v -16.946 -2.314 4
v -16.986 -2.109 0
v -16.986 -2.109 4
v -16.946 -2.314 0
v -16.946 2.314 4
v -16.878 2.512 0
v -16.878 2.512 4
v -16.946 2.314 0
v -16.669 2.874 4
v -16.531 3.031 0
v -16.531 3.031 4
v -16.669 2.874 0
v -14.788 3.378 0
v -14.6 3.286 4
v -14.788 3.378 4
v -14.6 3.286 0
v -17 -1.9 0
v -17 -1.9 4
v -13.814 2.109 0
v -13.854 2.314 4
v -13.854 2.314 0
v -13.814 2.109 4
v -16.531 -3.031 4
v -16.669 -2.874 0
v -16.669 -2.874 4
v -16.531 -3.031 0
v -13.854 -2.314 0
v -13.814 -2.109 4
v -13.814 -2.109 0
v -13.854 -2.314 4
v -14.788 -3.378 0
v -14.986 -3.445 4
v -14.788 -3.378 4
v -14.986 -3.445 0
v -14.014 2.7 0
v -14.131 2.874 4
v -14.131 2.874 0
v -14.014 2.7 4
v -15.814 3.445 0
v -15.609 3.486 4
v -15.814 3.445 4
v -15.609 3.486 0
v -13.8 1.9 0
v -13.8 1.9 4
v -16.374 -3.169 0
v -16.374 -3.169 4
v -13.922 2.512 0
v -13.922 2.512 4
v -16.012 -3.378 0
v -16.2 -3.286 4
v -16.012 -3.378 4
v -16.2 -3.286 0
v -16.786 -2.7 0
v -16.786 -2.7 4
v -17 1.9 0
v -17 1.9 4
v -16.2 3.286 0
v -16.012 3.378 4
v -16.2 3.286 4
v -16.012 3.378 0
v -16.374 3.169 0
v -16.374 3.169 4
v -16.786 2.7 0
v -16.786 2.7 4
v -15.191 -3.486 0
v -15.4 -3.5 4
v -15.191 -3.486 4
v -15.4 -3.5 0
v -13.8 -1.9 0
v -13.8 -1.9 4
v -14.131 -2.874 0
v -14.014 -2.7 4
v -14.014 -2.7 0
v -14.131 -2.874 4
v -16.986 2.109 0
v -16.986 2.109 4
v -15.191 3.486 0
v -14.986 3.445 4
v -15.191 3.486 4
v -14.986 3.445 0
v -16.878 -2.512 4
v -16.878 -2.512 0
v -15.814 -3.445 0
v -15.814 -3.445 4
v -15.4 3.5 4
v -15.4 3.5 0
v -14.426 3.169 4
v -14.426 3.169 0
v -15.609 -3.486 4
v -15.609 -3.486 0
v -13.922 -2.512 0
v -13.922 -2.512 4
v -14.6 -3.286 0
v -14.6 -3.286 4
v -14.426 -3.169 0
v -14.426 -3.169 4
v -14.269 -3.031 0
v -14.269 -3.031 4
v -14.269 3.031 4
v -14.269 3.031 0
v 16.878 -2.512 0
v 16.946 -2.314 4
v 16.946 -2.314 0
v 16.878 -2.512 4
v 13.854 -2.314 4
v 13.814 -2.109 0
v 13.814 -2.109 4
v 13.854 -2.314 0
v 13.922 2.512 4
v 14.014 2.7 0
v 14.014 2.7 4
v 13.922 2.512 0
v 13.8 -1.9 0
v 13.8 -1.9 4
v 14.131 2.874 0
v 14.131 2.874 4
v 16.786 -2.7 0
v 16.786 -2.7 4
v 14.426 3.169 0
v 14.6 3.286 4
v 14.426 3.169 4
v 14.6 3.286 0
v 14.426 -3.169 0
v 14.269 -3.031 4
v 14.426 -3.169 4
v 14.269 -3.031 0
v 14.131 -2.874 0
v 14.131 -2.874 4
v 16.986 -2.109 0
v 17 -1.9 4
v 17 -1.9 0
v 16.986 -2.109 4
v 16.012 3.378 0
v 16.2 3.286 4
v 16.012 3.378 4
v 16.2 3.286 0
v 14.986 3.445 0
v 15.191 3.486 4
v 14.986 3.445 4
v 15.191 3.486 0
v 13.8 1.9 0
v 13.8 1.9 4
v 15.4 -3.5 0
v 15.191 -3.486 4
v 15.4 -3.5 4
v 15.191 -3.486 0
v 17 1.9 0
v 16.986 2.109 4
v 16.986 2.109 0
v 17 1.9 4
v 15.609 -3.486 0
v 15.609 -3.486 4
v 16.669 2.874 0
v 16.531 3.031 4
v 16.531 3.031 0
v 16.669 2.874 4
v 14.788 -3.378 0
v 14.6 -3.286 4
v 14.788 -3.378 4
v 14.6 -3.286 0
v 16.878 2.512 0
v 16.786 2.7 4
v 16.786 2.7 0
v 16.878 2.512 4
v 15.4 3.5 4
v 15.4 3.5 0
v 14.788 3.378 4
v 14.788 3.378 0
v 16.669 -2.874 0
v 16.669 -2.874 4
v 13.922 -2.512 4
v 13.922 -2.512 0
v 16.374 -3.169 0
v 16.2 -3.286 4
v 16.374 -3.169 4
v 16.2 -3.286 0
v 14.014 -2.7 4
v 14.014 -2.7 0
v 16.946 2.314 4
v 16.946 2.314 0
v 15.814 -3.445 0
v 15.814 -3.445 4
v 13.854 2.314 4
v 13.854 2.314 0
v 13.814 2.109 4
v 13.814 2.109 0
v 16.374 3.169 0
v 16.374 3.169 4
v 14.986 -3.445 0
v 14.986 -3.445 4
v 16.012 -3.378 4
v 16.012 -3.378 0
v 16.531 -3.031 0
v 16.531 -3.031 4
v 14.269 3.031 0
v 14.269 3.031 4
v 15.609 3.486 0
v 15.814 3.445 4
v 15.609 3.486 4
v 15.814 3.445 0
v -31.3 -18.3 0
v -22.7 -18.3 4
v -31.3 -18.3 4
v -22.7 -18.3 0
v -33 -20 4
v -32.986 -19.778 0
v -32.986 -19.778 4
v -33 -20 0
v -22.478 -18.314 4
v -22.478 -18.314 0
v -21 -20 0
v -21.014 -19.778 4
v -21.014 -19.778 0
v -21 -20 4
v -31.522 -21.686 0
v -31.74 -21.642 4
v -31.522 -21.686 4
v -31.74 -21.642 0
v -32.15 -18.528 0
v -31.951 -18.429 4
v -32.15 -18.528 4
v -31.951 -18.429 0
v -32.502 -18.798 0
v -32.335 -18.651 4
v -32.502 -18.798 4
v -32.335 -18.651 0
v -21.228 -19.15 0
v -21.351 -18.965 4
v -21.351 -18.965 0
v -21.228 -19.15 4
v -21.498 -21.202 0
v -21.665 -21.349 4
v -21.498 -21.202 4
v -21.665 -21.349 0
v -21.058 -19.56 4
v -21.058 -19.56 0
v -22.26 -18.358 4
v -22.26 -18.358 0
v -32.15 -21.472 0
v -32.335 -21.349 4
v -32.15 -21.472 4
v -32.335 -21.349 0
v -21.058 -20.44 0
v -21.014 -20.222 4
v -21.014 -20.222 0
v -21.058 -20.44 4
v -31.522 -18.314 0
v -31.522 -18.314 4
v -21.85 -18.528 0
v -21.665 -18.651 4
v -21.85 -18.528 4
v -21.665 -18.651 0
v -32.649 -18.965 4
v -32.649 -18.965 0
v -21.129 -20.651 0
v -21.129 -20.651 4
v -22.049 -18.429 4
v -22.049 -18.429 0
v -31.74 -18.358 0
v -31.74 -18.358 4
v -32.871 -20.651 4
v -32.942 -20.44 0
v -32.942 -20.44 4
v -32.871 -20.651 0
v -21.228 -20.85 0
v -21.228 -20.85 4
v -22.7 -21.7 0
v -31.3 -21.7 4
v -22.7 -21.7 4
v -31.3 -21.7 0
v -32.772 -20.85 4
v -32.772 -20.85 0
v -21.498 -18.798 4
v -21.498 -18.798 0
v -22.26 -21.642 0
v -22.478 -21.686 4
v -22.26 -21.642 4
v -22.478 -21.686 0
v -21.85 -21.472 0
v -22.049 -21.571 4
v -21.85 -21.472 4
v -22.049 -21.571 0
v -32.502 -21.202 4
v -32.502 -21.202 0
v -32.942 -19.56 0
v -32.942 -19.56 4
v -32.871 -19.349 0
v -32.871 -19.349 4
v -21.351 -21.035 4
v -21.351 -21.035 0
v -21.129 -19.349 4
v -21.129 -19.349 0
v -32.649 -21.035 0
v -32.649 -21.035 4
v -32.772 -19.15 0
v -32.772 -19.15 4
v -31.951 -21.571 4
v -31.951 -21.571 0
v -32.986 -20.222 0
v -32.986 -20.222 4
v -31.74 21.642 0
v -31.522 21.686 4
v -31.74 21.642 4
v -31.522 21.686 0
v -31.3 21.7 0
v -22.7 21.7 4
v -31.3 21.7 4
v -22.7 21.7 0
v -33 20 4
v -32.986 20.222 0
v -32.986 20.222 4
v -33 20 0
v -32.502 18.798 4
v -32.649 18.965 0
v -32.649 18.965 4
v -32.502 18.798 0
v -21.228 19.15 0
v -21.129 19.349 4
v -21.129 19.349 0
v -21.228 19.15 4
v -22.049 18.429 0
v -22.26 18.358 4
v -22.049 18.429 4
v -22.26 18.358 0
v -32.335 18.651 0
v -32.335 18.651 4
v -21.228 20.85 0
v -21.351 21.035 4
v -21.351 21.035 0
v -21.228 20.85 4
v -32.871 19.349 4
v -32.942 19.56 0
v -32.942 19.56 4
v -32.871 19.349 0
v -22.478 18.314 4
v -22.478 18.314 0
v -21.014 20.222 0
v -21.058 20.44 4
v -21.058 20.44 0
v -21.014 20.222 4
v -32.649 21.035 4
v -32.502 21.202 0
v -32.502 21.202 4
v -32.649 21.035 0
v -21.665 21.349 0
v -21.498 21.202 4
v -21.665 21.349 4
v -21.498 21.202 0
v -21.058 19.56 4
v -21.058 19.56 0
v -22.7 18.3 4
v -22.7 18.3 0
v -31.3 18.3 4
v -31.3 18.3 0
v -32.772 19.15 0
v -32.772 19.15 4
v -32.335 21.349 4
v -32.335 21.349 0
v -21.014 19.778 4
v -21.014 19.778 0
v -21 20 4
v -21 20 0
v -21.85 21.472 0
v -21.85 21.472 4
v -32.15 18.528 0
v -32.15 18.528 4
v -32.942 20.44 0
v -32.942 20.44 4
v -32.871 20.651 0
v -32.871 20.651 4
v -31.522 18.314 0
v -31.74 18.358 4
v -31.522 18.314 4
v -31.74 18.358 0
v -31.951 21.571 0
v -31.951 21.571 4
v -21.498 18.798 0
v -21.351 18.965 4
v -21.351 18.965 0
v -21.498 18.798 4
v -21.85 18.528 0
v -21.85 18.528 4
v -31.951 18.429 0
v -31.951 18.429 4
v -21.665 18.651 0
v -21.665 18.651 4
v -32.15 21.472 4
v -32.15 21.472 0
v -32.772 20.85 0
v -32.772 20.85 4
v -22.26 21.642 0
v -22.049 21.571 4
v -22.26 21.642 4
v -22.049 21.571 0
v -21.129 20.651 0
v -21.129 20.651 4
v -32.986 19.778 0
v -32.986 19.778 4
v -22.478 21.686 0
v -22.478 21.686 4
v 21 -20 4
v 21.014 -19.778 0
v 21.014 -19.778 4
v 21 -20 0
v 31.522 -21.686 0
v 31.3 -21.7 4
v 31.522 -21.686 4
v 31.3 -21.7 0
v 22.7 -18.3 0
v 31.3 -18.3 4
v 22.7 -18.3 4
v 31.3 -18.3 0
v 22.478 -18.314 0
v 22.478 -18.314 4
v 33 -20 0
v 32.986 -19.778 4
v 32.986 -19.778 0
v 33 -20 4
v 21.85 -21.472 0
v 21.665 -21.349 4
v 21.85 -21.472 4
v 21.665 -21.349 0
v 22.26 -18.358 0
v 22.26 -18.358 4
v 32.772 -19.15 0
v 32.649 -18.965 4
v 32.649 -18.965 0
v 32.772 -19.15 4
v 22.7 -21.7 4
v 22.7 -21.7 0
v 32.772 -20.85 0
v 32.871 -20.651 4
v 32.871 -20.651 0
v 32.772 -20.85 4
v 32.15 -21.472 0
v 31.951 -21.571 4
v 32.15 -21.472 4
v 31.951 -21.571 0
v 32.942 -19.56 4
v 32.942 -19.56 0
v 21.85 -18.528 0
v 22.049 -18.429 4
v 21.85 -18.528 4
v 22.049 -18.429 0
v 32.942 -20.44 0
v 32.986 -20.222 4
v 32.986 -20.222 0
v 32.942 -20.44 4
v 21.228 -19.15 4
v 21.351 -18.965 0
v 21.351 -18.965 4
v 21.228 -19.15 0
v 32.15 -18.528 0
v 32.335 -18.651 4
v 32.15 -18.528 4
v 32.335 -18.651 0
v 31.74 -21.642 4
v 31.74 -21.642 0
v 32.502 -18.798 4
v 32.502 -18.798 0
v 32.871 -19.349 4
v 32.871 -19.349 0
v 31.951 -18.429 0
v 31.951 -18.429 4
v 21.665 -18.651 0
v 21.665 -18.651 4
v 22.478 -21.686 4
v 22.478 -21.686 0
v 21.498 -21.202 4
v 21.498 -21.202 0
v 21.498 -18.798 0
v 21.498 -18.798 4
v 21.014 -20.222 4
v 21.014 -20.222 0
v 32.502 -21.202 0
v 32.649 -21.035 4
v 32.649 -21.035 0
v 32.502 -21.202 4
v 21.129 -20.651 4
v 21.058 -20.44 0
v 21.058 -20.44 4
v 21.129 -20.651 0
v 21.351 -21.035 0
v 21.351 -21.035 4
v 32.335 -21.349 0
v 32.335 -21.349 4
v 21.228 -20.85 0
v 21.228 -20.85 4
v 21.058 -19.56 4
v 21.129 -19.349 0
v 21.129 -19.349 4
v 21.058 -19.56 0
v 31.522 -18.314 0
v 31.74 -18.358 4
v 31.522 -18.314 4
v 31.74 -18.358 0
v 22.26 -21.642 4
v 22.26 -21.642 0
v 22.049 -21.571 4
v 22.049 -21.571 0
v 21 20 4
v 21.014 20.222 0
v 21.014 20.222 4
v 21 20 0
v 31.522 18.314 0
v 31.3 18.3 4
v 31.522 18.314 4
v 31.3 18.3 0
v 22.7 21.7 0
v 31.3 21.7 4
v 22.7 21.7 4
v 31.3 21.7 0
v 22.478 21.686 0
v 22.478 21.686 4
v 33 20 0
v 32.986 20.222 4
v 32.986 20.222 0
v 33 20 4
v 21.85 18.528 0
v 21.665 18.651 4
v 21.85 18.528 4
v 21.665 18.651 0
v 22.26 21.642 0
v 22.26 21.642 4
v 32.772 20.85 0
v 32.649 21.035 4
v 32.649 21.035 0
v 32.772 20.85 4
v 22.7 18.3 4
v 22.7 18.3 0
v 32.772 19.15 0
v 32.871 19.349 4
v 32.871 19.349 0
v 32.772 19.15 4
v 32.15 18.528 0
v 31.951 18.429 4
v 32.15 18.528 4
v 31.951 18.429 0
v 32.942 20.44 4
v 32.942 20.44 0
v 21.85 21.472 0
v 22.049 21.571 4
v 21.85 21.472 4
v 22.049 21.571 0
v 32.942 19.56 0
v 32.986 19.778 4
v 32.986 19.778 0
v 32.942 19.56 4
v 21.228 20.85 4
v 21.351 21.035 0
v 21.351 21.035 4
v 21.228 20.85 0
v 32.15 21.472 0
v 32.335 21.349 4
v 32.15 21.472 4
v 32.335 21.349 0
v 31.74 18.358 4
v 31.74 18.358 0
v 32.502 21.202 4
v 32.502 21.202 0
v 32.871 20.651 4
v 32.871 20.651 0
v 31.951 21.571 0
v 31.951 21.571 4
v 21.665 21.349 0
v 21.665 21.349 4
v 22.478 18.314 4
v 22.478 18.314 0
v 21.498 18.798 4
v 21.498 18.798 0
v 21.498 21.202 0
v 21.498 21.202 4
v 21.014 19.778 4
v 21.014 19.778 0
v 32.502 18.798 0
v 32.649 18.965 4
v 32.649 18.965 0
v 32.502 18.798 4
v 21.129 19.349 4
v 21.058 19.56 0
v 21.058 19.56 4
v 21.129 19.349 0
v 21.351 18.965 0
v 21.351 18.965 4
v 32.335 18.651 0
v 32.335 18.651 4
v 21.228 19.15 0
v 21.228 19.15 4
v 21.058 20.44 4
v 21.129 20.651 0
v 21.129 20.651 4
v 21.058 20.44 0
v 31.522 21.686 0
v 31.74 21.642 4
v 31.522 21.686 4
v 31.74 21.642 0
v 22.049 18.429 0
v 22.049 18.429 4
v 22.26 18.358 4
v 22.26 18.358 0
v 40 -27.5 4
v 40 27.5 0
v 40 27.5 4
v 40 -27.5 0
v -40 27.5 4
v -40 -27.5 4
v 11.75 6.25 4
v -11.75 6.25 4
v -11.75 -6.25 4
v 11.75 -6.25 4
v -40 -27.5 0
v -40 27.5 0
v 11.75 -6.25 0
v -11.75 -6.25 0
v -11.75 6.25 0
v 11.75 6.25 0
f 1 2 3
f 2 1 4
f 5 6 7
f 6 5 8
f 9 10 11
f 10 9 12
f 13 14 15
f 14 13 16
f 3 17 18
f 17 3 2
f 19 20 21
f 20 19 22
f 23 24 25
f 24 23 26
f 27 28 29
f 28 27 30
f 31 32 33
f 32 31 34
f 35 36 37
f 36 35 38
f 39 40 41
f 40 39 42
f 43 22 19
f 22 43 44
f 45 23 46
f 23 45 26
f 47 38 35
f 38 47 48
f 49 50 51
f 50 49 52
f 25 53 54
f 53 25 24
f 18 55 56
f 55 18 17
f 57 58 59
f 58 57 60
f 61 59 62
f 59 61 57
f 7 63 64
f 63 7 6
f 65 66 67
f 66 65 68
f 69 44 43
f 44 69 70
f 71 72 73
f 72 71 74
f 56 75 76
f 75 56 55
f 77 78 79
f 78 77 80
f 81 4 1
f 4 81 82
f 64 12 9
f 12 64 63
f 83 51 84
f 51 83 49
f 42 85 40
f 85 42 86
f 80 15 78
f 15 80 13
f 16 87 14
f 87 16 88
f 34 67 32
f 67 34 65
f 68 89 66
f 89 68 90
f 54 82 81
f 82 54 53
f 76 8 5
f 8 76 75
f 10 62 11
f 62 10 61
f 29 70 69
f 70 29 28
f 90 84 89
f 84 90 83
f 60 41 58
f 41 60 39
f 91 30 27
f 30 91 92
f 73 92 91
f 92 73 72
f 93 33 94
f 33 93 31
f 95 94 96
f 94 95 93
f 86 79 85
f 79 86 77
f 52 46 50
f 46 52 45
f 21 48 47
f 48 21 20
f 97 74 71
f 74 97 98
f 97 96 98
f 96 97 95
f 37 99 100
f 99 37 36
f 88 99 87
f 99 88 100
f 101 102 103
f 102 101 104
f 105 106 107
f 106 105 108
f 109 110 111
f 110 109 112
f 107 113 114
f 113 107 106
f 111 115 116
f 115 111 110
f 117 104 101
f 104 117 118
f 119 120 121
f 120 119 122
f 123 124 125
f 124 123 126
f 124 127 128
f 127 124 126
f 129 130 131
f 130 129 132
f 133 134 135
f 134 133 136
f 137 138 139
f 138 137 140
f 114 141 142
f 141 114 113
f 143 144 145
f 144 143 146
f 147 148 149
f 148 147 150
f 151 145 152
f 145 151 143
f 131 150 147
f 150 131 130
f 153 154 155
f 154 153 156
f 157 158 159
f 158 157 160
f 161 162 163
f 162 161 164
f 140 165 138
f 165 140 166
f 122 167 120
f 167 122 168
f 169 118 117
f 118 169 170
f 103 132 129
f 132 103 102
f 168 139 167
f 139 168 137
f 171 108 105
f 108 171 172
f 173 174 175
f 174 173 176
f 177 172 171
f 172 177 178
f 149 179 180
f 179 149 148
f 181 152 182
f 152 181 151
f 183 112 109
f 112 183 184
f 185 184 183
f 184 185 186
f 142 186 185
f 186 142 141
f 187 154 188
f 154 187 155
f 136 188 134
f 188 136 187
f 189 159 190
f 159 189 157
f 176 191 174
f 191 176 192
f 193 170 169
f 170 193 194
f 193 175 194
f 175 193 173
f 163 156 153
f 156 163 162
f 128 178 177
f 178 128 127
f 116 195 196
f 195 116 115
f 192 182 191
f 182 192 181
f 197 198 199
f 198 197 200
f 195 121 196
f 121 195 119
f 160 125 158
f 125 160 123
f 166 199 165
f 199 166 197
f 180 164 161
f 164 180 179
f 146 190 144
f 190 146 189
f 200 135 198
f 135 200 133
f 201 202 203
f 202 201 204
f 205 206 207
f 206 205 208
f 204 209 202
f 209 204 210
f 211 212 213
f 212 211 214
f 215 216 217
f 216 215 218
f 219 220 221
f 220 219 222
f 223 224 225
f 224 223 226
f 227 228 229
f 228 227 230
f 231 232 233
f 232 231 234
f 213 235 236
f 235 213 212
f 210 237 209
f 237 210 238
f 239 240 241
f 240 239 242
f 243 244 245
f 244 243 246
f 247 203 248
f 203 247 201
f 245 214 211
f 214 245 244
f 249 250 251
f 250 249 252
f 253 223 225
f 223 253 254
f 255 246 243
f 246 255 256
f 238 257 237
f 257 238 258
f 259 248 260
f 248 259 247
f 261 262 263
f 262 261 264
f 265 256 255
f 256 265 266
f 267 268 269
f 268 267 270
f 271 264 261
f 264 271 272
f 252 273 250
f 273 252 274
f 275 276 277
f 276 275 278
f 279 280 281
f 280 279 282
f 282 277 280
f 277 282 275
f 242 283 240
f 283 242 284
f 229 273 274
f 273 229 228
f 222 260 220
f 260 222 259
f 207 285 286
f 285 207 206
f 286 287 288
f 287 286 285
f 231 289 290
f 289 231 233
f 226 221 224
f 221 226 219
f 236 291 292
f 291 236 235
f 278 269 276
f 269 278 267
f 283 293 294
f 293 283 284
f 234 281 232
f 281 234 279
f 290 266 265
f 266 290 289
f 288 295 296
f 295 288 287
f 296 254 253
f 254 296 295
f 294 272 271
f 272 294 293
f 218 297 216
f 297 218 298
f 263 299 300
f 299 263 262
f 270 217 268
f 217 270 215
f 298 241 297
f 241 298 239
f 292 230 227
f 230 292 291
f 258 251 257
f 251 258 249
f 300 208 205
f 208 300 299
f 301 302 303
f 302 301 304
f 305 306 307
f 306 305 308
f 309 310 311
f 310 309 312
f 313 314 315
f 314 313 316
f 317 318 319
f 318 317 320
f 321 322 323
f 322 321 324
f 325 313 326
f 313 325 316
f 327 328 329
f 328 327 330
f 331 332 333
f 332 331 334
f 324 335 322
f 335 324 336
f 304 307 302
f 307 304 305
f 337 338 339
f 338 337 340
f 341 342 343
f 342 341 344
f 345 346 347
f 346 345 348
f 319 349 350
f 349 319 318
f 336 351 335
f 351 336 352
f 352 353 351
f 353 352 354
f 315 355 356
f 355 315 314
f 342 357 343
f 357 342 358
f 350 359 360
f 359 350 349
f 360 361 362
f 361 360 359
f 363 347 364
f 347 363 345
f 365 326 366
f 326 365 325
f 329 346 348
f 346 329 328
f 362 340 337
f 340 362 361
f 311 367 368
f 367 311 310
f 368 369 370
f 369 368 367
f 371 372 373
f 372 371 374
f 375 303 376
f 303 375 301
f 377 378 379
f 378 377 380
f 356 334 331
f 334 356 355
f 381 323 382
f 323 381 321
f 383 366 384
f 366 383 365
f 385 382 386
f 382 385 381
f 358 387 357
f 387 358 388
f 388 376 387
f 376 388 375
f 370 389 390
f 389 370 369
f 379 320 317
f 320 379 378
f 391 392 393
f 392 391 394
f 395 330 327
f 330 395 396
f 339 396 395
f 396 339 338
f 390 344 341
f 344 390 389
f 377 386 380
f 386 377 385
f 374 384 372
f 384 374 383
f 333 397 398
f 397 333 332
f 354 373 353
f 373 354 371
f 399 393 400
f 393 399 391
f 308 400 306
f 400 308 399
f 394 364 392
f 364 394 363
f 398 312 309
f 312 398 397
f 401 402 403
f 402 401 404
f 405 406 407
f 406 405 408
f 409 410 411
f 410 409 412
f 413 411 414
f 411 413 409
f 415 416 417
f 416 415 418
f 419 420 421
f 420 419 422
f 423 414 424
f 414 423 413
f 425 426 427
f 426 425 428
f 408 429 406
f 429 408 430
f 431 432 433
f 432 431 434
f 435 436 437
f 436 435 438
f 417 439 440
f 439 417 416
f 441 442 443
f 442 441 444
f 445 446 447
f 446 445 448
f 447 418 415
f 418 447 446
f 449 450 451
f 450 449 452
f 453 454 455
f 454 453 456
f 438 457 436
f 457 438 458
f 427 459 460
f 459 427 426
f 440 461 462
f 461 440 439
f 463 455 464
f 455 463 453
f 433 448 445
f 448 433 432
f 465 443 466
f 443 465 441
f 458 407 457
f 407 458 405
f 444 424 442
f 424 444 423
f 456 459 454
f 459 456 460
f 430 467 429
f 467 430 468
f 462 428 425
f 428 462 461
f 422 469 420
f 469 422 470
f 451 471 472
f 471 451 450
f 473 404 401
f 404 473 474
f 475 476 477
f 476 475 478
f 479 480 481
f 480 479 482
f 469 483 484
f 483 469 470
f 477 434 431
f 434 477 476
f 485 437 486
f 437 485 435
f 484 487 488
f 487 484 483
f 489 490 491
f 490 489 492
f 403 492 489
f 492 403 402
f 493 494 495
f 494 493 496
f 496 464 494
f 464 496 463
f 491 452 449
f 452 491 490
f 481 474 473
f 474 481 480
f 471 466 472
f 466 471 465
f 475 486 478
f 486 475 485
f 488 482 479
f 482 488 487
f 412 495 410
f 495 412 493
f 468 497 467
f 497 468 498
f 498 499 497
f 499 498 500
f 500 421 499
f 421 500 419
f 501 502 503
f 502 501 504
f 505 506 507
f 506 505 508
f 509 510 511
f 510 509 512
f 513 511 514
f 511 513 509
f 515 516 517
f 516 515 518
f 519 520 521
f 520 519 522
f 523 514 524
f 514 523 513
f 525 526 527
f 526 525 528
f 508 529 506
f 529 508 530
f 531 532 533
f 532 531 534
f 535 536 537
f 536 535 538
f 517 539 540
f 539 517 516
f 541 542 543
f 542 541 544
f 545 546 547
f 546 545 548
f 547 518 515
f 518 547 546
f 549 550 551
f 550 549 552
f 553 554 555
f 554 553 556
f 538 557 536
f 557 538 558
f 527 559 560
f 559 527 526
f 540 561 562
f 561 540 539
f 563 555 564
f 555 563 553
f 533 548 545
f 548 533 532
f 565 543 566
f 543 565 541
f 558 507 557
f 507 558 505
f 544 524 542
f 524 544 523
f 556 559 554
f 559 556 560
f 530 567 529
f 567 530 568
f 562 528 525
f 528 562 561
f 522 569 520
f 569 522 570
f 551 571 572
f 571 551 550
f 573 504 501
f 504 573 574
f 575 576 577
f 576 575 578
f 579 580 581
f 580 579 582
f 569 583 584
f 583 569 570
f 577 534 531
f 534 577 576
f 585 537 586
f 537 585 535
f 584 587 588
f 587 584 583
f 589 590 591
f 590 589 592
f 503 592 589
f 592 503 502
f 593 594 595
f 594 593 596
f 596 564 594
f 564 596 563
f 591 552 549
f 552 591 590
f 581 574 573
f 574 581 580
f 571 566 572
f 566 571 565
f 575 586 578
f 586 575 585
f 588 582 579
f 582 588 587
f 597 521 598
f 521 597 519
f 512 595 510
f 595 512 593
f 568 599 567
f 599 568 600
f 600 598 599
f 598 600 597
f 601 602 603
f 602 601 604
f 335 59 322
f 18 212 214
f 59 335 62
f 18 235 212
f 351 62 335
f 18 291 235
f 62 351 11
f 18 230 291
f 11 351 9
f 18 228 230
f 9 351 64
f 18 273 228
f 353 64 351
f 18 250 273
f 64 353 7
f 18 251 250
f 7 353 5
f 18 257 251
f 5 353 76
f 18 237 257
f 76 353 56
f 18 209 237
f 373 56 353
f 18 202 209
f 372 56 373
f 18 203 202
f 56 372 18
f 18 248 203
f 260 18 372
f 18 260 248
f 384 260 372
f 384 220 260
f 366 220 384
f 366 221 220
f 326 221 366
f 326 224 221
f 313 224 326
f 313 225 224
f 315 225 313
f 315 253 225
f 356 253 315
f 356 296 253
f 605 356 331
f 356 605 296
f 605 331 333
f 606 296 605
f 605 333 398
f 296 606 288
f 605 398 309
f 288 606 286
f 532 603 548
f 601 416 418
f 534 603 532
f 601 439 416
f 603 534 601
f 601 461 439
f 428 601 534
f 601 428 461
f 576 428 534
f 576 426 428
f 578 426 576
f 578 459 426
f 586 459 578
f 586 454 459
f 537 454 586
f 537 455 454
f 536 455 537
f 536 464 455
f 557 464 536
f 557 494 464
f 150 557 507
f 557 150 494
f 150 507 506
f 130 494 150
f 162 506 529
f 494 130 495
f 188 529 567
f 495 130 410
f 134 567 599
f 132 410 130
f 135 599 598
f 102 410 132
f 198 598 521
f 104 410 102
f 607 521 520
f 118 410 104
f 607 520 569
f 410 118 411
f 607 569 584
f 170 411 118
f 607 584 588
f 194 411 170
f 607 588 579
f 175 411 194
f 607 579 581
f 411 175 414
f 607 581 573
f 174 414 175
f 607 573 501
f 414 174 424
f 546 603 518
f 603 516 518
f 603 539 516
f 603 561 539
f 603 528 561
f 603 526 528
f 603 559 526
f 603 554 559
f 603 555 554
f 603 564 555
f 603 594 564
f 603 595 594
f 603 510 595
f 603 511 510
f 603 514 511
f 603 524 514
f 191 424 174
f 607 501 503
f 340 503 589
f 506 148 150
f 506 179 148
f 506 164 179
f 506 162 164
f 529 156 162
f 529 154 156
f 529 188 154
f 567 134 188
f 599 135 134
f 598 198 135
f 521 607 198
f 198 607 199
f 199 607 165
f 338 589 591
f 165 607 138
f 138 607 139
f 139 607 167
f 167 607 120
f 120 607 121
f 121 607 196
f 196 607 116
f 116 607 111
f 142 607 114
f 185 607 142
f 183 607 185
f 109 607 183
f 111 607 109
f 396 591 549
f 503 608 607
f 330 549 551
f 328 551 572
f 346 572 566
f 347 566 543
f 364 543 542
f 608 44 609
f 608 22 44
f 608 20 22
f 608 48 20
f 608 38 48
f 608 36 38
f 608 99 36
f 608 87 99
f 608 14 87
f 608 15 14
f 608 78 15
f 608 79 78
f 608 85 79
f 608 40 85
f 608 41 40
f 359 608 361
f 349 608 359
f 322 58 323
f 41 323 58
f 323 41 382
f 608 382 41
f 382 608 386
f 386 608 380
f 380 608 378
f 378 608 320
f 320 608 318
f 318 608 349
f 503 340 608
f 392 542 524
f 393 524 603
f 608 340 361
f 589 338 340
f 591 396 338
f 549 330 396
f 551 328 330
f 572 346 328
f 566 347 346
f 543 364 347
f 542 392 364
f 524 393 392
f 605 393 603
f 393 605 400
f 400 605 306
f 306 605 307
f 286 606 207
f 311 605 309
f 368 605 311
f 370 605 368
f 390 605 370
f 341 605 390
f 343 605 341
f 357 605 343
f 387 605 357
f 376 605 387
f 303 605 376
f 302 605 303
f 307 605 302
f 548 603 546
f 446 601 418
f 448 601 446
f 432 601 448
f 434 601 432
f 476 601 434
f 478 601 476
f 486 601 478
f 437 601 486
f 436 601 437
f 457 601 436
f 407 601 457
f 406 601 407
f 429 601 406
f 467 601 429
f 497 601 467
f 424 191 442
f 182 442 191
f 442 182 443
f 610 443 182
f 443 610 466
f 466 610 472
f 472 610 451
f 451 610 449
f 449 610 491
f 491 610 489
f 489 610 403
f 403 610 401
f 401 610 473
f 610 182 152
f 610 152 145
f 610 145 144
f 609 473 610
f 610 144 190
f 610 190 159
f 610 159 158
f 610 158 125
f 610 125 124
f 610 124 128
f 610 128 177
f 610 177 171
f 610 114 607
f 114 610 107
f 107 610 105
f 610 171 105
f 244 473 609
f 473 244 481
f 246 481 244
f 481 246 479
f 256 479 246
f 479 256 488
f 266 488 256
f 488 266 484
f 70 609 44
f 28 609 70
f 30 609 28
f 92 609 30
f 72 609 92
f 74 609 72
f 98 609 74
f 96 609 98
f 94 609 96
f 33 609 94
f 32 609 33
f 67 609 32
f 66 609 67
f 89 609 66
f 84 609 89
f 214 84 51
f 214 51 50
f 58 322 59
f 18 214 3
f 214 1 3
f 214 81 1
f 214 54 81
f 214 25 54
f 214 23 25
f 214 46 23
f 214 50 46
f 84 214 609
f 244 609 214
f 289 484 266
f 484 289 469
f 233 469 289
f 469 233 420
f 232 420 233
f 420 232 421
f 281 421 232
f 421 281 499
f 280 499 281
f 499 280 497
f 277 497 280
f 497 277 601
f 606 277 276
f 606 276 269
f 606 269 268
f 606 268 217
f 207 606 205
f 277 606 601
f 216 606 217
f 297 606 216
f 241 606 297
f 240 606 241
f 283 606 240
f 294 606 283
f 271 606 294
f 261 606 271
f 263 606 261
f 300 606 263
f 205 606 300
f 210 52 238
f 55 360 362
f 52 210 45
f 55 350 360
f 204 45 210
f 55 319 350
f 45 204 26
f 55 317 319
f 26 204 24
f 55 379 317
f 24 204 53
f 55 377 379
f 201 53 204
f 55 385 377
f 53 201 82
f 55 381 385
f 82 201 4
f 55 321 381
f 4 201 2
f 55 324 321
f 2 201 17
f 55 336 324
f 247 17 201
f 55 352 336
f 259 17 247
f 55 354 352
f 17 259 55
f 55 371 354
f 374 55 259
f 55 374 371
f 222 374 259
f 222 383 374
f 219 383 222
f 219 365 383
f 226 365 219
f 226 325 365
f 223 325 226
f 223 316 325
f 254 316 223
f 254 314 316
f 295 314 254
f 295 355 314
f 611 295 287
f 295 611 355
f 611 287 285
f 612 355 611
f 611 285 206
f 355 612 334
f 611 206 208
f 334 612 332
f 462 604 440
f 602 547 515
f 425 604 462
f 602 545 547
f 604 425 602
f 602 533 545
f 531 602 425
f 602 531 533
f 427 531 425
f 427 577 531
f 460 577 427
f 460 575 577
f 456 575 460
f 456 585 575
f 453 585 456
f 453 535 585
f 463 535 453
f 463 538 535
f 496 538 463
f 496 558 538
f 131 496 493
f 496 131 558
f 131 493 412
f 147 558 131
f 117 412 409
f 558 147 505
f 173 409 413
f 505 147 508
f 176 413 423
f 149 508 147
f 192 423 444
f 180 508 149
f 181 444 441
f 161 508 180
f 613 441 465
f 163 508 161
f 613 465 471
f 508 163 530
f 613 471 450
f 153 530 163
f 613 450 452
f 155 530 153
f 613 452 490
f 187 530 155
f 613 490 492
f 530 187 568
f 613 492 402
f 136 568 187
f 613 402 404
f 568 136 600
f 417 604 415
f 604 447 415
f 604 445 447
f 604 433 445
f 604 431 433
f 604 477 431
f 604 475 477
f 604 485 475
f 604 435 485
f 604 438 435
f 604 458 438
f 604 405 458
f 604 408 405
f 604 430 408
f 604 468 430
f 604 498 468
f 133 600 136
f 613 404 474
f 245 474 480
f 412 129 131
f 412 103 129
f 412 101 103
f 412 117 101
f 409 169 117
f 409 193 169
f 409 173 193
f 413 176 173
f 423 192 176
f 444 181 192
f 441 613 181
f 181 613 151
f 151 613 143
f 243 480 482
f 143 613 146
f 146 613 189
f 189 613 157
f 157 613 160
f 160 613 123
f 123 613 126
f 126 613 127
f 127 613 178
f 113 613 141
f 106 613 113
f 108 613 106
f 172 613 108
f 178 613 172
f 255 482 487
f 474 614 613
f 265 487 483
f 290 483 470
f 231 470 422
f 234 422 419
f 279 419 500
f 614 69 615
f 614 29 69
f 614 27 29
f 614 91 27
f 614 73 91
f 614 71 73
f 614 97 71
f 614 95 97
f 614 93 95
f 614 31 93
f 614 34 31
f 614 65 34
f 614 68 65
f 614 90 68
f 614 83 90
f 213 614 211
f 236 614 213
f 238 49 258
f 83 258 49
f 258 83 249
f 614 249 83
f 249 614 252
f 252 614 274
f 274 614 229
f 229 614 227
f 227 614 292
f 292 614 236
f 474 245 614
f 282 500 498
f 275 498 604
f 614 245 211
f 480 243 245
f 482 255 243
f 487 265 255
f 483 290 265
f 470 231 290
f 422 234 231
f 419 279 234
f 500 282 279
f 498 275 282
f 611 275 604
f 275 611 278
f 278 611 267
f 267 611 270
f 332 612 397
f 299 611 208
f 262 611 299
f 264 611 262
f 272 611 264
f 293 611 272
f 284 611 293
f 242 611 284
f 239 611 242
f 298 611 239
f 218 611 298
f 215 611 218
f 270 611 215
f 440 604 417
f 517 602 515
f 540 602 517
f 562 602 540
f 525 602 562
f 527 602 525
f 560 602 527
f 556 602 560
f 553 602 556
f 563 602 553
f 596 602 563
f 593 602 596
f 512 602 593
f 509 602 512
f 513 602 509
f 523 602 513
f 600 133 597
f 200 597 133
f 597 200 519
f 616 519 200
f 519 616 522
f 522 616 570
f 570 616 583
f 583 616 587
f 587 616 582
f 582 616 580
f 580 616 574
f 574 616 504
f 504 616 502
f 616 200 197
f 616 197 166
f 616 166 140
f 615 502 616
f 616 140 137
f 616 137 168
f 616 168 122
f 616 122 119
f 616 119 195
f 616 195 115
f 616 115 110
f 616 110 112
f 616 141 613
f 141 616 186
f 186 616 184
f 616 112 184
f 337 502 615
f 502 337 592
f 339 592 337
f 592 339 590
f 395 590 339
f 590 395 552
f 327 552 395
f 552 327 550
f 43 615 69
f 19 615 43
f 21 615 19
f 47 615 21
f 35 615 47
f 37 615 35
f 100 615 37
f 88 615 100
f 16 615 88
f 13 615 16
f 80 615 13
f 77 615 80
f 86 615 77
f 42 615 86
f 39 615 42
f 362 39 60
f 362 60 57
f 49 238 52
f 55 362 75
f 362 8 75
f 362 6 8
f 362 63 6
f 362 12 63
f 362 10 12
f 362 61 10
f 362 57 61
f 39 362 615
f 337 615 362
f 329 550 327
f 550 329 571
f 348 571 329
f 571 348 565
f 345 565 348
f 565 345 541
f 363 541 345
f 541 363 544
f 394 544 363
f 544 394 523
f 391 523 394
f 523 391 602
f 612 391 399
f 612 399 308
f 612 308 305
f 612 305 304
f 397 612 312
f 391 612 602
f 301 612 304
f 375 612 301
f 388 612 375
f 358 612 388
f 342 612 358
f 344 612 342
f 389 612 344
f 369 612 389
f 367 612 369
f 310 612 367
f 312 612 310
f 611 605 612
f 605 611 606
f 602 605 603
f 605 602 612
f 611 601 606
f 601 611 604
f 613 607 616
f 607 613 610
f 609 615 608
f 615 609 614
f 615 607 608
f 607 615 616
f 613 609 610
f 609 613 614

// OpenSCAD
/* TAM GAN SERVO: ban thu co tham so, don vi mm.
 * Can do than servo va vi tri tai bat thuc te truoc khi in.
 * Khe giua gianh cho than servo; 2 khe doc danh cho tai bat servo.
 * Bon khe ngoai bat tam len thanh/khung. Khong duoc dung de do ca bo dau nang.
 */
$fn=48;
length=80; width=55; plate_t=4;
servo_l=23.5; servo_w=12.5; servo_hole_x=15.4;
slot_d=3.2; servo_slot_length=7;
frame_slot_width=3.4; frame_slot_length=12;
assert(servo_l/2 + slot_d/2 < servo_hole_x);
module slot(cx,cy,long,d,dir="x") {
 translate([cx,cy,-.1]) linear_extrude(height=plate_t+.2)
  if(dir=="x") hull(){translate([-(long-d)/2,0])circle(d=d);translate([(long-d)/2,0])circle(d=d);}
  else hull(){translate([0,-(long-d)/2])circle(d=d);translate([0,(long-d)/2])circle(d=d);}
}
difference(){
 translate([-length/2,-width/2,0])cube([length,width,plate_t]);
 translate([-servo_l/2,-servo_w/2,-.1])cube([servo_l,servo_w,plate_t+.2]);
 for (x=[-servo_hole_x,servo_hole_x]) slot(x,0,servo_slot_length,slot_d,"y");
 for (x=[-27,27],y=[-20,20])slot(x,y,frame_slot_length,frame_slot_width,"x");
}
